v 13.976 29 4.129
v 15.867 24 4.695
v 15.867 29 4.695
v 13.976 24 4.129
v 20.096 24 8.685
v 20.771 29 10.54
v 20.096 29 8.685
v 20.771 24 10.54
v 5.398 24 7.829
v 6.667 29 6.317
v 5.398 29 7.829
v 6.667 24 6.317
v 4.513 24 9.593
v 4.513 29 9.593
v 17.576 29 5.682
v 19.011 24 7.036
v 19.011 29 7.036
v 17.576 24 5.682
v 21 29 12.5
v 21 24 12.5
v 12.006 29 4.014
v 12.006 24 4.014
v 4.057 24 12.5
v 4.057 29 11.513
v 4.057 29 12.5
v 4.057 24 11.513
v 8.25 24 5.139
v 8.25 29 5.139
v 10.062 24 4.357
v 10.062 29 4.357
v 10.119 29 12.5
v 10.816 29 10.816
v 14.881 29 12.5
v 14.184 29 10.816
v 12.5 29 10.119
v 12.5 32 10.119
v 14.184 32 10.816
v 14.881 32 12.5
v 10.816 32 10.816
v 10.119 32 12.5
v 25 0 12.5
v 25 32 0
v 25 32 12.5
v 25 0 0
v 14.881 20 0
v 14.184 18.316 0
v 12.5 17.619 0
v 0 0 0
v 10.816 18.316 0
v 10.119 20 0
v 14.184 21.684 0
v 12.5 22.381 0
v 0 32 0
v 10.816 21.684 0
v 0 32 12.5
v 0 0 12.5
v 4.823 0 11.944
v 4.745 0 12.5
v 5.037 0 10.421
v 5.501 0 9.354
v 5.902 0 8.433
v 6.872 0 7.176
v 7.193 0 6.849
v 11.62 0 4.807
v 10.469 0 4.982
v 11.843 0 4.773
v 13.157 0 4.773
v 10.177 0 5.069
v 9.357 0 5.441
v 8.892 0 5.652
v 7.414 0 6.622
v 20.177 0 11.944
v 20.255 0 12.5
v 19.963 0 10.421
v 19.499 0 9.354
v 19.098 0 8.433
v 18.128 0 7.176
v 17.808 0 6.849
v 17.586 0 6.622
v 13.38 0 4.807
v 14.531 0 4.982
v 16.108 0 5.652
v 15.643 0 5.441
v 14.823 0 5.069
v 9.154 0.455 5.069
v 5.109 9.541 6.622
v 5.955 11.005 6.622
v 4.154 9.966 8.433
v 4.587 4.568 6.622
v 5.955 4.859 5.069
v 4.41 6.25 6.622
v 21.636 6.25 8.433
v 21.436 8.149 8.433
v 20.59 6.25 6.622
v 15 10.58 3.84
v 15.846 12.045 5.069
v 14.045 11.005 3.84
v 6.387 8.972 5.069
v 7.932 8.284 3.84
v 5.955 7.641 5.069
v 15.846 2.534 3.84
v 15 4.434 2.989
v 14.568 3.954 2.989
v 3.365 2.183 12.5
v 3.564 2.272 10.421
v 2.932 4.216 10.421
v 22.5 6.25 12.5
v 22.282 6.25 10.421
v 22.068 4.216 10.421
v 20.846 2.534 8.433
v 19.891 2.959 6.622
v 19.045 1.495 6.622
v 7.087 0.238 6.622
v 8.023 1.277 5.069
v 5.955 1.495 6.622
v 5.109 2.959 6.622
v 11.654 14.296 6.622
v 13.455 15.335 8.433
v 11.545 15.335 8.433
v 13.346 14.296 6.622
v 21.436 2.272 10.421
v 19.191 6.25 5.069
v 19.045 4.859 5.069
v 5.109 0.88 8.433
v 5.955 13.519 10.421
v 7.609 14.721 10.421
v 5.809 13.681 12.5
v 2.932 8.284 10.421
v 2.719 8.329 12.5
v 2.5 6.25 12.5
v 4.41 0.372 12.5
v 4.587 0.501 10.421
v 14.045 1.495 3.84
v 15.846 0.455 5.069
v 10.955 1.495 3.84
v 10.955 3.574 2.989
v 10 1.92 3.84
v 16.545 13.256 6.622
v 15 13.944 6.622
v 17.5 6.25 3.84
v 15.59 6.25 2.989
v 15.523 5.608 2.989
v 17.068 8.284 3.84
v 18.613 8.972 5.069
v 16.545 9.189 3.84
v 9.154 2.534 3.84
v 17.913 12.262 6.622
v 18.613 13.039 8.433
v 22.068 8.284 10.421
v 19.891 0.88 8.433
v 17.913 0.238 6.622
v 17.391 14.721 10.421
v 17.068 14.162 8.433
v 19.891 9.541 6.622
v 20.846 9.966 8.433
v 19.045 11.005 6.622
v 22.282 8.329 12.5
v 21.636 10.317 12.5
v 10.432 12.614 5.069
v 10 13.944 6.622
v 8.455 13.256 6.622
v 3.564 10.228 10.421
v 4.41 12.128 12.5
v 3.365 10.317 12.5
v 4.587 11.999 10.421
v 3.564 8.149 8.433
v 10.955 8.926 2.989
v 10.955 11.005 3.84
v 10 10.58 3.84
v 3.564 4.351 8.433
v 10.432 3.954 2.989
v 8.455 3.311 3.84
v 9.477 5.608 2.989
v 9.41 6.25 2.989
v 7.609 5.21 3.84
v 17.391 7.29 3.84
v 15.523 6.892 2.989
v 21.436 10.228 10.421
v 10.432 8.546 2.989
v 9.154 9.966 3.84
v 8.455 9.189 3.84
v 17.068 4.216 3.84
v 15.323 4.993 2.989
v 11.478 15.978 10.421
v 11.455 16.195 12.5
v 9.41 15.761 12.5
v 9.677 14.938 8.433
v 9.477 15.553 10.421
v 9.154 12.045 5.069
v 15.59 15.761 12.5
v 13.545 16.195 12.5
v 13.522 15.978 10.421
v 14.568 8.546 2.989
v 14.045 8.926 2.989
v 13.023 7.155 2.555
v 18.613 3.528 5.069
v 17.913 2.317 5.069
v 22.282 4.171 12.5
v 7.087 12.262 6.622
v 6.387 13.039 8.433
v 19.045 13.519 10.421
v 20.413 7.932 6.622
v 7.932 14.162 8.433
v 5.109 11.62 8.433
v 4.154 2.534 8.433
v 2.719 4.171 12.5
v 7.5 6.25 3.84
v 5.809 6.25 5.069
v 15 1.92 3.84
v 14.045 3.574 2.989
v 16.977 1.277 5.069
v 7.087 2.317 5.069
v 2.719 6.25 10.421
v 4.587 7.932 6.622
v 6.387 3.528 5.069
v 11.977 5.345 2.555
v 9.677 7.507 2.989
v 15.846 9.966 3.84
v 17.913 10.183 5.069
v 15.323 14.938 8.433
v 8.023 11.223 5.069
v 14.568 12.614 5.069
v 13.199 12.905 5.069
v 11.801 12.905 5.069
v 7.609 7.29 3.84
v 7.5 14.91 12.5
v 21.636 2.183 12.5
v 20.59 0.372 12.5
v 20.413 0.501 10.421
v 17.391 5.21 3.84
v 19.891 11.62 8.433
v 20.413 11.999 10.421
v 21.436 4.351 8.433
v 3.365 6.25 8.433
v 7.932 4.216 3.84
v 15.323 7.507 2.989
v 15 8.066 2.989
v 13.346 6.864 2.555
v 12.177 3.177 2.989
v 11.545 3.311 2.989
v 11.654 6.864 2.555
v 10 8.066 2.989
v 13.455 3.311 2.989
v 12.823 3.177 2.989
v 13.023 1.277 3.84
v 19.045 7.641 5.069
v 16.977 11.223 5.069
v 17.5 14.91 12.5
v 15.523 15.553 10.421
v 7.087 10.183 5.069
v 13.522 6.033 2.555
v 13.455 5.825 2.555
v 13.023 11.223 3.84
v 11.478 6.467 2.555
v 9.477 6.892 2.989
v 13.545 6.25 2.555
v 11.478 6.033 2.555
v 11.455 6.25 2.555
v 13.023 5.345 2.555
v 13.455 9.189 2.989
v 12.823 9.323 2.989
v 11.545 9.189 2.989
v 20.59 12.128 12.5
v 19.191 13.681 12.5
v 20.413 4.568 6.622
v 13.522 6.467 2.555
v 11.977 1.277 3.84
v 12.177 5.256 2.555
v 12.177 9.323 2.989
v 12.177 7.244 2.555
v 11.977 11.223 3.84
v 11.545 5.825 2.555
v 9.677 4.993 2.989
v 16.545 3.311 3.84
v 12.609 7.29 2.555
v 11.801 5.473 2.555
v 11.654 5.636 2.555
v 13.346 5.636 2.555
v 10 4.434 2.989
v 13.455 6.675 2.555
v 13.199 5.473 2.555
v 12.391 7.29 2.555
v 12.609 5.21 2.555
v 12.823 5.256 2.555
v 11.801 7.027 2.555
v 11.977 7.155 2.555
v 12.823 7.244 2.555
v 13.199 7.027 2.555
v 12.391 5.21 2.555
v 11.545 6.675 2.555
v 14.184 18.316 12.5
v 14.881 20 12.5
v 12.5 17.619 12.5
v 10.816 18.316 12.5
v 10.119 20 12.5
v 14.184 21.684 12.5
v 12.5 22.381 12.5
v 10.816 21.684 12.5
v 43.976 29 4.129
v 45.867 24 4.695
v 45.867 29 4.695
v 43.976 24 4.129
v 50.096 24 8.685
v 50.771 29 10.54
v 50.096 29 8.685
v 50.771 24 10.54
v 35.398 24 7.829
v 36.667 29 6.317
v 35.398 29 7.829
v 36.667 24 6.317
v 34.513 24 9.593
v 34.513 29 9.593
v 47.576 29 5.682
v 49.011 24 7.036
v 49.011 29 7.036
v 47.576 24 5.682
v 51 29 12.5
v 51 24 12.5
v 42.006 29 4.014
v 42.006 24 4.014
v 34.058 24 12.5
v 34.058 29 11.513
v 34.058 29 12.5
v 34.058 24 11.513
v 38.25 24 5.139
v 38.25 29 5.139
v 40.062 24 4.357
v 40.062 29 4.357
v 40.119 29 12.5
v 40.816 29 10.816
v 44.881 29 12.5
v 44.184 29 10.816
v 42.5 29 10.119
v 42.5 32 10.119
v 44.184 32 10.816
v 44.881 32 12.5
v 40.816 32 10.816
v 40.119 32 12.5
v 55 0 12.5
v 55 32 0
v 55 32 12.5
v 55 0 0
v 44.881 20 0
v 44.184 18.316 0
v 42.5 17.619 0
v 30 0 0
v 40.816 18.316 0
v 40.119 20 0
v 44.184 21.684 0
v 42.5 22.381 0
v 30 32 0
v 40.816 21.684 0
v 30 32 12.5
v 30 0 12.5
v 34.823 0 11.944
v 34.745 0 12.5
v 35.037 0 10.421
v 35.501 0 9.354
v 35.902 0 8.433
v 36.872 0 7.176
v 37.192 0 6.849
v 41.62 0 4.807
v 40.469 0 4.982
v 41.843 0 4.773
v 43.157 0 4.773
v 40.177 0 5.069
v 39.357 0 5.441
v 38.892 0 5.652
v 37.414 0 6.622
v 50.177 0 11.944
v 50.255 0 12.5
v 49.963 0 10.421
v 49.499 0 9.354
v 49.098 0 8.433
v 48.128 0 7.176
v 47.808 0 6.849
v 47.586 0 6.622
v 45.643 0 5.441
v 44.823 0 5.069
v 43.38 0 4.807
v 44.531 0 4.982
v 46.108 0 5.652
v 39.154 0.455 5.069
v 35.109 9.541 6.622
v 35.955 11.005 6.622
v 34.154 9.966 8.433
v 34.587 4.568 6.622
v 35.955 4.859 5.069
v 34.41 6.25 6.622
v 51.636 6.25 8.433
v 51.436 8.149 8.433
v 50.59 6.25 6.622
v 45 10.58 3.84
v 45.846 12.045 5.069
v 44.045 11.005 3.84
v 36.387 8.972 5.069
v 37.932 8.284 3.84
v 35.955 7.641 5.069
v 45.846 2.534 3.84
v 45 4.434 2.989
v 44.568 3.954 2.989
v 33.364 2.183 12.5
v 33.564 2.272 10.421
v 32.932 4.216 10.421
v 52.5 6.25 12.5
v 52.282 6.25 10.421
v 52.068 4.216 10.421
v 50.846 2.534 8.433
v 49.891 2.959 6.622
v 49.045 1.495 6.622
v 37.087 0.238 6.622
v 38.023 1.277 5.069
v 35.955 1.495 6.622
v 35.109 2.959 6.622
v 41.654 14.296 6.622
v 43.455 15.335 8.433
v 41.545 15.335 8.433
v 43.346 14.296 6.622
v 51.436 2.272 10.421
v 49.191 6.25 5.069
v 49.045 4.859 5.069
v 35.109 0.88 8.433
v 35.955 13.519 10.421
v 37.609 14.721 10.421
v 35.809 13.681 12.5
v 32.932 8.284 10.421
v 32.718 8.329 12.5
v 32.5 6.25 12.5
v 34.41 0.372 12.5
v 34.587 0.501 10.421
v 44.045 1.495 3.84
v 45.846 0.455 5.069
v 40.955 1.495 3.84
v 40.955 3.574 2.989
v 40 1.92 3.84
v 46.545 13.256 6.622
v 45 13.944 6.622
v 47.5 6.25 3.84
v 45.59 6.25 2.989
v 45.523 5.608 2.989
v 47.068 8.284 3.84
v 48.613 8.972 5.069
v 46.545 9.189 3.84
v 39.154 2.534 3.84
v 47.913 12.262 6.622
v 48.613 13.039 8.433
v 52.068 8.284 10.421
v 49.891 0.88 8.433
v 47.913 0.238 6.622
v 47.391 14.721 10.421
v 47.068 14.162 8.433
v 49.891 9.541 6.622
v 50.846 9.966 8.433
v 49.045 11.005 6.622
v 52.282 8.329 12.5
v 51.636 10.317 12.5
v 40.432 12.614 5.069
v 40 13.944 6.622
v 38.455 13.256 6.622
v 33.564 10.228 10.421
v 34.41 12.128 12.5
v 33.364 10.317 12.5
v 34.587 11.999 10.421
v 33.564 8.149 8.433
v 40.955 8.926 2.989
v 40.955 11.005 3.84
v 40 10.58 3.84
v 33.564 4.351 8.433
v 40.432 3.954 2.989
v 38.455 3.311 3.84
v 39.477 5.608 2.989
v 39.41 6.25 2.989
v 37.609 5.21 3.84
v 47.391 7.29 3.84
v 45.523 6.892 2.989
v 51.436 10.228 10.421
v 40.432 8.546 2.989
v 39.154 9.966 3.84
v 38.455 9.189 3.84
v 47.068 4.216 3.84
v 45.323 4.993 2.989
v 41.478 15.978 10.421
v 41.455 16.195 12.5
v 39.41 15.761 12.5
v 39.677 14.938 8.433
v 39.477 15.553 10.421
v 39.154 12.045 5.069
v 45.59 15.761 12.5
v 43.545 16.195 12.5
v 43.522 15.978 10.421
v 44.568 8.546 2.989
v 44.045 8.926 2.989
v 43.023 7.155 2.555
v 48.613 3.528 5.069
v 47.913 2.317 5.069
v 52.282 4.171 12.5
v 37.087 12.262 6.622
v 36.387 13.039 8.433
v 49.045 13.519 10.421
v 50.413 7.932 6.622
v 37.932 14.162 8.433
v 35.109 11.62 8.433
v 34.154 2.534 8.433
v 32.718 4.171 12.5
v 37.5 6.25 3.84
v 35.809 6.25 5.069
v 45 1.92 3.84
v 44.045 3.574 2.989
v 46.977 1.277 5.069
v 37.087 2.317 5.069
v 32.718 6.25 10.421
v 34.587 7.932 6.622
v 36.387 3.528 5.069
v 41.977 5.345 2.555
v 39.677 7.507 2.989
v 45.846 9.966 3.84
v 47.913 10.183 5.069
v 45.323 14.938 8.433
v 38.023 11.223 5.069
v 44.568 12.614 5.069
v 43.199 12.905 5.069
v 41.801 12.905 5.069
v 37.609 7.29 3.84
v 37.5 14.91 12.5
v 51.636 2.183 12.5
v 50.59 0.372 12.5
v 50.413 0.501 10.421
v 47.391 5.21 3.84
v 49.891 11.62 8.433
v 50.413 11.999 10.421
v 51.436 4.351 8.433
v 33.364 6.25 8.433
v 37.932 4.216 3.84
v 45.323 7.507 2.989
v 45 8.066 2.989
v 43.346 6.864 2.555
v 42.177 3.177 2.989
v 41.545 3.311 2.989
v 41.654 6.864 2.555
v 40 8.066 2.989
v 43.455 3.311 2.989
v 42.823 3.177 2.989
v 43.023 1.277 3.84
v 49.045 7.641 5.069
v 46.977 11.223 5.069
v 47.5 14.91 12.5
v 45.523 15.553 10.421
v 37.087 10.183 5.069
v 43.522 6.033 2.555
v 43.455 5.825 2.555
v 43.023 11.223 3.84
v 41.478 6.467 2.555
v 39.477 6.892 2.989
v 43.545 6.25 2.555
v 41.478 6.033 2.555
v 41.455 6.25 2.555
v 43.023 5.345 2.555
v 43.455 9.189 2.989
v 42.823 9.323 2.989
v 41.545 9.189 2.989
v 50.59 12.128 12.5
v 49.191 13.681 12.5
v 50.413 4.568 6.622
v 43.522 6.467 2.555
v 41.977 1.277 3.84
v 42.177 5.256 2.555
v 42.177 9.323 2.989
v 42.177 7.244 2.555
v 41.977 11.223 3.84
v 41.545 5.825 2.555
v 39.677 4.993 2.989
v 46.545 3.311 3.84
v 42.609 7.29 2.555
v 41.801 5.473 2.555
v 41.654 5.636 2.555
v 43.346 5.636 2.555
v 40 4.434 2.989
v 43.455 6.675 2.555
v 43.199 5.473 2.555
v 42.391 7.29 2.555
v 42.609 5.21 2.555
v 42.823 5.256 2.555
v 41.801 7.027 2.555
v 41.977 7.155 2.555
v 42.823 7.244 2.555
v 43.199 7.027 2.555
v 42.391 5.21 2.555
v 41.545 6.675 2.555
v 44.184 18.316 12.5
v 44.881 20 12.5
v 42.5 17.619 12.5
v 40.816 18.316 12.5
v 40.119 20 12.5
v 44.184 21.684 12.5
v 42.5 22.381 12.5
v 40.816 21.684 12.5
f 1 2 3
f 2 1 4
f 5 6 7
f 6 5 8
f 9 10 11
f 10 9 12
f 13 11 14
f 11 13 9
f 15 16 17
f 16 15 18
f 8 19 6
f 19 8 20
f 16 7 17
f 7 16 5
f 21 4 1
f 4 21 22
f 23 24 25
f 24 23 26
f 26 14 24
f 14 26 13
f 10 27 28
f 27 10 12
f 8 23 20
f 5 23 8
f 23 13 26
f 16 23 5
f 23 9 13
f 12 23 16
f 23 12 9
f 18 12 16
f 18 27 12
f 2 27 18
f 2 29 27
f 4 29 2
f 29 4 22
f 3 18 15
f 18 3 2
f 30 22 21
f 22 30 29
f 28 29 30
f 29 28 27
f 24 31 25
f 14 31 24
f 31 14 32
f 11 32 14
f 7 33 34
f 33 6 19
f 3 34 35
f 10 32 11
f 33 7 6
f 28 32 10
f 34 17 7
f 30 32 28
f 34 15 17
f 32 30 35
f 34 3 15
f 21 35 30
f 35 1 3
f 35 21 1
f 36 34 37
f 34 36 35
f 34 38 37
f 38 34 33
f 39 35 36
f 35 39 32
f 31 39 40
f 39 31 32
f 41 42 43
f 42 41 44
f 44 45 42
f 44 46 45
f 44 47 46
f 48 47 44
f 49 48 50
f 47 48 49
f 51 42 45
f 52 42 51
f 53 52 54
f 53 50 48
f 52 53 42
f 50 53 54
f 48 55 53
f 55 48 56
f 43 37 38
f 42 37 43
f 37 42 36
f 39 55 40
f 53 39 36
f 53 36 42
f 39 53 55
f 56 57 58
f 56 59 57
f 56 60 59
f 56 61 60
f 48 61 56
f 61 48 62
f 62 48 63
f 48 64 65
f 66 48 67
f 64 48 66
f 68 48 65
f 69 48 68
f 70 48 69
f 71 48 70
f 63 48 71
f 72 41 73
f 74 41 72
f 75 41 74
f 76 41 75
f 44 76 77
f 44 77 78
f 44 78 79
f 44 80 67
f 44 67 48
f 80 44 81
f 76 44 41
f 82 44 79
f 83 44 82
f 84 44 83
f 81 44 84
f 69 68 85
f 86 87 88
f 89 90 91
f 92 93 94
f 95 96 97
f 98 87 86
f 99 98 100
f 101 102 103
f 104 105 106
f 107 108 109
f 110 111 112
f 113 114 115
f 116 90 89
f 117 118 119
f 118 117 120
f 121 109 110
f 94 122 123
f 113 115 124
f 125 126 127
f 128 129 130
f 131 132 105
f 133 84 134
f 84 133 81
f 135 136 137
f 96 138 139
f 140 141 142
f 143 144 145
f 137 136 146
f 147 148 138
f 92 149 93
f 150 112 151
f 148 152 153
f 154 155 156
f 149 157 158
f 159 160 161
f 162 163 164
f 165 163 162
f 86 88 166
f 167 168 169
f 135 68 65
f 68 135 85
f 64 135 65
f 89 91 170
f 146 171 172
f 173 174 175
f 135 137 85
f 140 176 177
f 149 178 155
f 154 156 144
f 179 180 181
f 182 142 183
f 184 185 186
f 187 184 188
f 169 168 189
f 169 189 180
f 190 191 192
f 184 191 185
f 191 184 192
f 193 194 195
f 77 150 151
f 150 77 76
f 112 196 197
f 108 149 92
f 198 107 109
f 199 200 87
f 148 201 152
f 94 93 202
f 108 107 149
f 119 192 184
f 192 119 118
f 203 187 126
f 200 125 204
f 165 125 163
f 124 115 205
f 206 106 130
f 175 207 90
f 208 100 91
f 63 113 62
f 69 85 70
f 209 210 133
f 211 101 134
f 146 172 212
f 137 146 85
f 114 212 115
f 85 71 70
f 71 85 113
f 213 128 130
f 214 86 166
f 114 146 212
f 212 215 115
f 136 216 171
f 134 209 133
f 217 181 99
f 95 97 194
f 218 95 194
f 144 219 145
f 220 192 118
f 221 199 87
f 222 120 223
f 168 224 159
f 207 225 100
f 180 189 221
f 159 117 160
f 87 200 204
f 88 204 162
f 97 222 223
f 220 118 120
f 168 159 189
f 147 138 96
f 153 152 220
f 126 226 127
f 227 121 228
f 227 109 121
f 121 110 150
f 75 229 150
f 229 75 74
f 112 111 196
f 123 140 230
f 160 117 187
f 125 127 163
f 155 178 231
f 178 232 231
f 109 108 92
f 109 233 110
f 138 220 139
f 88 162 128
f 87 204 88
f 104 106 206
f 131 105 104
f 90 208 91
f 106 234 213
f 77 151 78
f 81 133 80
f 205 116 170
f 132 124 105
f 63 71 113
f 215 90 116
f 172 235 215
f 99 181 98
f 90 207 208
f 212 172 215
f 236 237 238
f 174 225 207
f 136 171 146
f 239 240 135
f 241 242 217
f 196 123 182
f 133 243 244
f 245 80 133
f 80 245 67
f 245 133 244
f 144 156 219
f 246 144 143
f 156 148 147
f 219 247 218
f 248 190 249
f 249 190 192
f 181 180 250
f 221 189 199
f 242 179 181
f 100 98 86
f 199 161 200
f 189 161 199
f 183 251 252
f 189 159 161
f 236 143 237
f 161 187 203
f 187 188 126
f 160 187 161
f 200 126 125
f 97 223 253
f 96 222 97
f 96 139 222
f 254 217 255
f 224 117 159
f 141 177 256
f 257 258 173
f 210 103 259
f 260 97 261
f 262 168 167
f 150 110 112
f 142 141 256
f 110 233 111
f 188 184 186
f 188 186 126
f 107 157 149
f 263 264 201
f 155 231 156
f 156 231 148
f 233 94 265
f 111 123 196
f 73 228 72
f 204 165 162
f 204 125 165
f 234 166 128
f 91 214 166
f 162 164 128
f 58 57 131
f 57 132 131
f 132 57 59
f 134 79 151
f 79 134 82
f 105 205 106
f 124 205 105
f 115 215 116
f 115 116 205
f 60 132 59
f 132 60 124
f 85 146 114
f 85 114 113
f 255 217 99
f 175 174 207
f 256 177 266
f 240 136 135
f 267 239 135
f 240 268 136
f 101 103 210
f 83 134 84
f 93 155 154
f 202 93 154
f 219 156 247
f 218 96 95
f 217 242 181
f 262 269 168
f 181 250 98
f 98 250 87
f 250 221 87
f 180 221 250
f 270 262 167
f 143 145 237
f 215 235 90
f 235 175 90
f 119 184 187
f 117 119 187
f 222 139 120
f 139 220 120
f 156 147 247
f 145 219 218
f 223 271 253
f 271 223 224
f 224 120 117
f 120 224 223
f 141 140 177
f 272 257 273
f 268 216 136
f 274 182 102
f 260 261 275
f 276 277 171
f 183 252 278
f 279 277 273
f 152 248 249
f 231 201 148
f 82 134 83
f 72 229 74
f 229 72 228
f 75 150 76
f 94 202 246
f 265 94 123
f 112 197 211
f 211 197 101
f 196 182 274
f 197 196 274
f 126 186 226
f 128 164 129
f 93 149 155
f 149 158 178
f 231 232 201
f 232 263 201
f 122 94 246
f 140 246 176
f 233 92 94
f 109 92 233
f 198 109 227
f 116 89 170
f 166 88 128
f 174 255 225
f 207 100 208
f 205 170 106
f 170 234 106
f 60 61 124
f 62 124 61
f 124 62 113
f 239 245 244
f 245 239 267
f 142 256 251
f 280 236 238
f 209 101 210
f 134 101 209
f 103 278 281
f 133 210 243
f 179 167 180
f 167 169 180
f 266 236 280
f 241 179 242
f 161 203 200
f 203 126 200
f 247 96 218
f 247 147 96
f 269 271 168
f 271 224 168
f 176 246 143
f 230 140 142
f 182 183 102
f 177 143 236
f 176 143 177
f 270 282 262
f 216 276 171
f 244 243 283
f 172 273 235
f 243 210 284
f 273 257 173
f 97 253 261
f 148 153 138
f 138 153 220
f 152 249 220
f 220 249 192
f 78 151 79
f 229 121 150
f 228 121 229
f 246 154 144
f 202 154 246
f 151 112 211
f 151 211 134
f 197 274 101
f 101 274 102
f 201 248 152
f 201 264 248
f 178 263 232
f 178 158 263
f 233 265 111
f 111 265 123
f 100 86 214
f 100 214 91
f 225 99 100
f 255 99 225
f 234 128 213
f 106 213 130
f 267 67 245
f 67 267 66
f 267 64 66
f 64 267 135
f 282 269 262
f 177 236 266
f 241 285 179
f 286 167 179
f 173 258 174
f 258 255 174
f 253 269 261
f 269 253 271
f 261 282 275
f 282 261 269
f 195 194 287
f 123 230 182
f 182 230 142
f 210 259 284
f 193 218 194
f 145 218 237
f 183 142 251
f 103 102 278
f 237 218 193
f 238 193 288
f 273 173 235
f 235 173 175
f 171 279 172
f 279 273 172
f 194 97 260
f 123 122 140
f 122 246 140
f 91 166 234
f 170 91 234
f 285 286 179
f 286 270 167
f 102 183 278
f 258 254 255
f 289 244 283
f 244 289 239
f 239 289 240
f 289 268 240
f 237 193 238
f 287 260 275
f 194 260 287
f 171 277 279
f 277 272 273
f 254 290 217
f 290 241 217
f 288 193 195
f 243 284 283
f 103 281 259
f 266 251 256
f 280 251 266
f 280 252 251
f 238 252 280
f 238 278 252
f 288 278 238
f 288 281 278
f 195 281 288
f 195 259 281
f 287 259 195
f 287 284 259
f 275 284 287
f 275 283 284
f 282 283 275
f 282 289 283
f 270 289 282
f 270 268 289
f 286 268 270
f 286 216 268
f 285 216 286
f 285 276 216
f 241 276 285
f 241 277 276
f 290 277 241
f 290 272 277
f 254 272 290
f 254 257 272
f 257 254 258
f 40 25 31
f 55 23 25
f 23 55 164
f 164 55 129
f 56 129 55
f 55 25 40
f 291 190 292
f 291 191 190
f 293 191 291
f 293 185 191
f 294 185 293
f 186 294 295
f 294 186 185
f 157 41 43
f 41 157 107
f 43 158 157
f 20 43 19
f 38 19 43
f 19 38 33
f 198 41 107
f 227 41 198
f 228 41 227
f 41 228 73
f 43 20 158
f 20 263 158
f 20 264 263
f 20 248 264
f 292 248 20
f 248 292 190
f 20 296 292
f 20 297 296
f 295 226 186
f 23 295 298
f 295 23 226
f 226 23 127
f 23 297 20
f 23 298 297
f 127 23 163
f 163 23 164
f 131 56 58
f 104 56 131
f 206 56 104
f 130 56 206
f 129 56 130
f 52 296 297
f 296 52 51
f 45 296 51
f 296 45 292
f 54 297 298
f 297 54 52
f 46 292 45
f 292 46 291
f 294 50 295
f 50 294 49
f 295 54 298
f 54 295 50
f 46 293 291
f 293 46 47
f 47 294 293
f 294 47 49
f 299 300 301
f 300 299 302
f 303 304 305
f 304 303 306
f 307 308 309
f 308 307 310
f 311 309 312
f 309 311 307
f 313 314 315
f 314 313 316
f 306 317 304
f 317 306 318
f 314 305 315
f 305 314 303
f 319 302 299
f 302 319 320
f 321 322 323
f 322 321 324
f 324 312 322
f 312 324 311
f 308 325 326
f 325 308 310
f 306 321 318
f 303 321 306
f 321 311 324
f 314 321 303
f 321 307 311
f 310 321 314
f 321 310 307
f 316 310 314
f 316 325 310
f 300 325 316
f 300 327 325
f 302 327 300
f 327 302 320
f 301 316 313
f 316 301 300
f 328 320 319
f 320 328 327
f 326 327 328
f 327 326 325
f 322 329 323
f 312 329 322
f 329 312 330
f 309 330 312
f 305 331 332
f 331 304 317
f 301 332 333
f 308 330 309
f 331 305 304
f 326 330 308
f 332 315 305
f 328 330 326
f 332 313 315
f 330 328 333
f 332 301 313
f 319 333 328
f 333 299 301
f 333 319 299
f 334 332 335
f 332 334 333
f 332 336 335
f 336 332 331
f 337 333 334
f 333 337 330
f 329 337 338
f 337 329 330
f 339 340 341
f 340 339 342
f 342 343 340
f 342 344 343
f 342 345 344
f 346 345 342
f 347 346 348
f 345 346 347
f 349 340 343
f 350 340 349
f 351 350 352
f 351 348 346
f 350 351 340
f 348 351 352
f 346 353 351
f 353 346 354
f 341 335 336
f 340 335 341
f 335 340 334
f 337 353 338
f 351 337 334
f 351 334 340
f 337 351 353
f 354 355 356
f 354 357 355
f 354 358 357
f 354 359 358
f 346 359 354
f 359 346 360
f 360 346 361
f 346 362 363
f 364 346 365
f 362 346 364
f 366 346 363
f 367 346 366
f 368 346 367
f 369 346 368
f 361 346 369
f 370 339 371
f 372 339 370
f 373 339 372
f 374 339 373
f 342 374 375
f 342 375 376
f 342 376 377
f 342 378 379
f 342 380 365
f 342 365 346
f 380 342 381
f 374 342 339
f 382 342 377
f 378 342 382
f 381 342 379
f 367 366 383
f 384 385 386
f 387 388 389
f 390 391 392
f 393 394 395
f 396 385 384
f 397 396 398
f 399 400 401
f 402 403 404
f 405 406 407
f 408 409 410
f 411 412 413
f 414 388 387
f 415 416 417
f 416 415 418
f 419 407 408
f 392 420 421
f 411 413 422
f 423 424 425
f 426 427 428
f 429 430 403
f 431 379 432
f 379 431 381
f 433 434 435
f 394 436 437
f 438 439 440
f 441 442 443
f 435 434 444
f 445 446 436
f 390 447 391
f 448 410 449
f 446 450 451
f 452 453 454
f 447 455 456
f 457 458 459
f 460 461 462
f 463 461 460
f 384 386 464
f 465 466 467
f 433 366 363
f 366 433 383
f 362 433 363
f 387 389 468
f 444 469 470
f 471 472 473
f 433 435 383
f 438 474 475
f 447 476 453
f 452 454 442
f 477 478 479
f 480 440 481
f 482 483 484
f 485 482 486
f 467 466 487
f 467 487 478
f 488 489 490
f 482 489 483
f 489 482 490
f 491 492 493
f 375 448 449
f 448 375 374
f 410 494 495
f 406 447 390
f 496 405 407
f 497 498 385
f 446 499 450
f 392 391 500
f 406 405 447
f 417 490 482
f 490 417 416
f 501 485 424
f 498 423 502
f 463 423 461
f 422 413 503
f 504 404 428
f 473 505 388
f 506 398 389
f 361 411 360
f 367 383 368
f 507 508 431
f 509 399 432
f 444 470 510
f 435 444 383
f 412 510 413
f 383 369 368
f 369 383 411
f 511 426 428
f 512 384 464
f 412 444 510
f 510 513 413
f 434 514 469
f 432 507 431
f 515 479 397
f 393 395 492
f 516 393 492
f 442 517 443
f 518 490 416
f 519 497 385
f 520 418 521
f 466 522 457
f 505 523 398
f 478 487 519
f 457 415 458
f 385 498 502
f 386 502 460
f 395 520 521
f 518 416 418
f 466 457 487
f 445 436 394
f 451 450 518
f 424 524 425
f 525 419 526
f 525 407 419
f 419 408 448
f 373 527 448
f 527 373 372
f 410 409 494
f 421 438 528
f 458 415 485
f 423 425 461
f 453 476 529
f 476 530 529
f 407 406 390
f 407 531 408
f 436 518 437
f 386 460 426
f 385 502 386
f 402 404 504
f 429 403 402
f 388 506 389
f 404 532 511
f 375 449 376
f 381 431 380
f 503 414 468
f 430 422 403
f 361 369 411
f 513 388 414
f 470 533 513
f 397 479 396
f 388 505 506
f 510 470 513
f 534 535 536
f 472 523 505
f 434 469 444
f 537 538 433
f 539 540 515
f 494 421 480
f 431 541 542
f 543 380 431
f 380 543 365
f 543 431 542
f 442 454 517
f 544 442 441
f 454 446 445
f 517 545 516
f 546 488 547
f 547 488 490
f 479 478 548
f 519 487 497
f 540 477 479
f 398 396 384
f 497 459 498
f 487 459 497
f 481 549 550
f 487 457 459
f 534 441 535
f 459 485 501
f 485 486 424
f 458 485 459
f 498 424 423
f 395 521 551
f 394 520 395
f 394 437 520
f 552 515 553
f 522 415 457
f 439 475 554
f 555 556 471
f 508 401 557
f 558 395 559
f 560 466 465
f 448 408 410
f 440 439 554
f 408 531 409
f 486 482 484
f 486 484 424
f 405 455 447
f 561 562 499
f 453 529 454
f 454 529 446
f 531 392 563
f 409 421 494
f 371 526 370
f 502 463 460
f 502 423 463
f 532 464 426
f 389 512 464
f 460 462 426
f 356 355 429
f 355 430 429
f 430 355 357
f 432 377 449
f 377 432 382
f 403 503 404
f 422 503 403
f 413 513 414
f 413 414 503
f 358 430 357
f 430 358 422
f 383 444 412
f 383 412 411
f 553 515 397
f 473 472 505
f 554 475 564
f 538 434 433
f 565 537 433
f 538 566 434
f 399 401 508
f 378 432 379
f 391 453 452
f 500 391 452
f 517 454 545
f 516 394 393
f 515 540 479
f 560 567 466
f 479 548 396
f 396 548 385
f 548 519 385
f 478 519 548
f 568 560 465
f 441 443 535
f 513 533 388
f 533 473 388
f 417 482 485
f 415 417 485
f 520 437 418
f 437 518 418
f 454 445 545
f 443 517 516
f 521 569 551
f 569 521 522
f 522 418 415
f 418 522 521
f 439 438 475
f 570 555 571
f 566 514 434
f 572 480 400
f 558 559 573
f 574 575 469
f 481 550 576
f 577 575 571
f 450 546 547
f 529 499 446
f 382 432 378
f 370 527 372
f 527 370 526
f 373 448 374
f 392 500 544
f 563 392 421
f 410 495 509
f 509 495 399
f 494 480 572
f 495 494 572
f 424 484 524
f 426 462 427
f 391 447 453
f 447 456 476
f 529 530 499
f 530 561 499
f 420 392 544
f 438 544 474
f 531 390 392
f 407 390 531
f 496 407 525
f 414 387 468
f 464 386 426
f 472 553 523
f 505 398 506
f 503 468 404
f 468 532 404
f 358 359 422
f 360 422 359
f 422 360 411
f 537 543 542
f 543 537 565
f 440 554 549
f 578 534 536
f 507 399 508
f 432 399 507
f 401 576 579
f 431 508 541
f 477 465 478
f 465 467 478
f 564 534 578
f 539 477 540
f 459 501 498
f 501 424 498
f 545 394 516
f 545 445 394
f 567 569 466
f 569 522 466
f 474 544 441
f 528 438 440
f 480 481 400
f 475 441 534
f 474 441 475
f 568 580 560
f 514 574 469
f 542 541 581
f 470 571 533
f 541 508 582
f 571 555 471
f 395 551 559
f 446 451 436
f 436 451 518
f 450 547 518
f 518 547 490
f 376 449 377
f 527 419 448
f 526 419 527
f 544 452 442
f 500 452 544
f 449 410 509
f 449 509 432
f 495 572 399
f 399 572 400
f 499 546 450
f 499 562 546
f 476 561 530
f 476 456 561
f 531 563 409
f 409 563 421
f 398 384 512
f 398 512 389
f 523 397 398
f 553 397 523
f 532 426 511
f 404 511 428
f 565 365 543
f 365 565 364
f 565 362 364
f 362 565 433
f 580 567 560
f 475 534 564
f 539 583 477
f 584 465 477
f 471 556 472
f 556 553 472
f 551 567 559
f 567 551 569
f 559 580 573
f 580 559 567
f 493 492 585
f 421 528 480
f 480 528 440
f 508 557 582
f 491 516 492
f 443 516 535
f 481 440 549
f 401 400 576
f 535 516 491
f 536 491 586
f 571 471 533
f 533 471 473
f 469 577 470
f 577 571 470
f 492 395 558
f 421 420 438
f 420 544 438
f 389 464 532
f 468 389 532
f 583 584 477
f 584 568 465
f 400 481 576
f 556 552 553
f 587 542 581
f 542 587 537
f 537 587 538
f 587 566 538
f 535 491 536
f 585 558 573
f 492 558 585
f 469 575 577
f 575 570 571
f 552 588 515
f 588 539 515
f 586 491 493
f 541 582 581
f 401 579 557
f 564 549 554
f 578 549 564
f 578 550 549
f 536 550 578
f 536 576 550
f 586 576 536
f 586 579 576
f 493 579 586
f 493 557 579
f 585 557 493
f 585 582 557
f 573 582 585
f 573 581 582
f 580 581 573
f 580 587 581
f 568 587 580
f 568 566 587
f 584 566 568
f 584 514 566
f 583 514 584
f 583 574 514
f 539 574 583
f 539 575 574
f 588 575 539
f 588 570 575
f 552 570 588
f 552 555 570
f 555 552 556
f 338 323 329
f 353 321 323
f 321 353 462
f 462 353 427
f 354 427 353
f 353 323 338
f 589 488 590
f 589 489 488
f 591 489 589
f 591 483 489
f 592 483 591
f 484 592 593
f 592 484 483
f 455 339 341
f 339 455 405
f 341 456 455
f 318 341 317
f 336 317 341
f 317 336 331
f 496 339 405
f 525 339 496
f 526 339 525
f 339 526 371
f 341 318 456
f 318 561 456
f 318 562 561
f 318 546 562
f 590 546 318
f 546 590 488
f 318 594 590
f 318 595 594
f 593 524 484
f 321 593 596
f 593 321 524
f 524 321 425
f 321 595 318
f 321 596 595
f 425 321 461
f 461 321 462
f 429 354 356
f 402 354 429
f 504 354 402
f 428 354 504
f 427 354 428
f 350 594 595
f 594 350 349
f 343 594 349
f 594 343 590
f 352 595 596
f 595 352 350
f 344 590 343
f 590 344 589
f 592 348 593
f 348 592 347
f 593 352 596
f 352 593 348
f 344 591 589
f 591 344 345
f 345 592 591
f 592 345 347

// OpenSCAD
WIDTH=25;
LENGTH=32;
DBALL=20;
BOLT=6/32*25.4;

module disk() {
  rotate ([-90,0,0]) {
    cylinder(5,d=17);
    cylinder(20,d=BOLT);
  }
}


module half() {
difference() {
  difference() {
    difference() {
      cube([WIDTH,LENGTH,WIDTH]);
      translate([WIDTH/2,WIDTH/4,WIDTH/2]) sphere(d=DBALL);
    }
    translate([0,0,WIDTH/2]) cube([WIDTH,LENGTH,WIDTH]);
  }
  translate([WIDTH/2,DBALL,0]) cylinder(WIDTH,d=BOLT);
  #translate([WIDTH/2,LENGTH-8,WIDTH/2]) disk();
}
}

half();
translate([WIDTH*1.2,0,0]) half();
